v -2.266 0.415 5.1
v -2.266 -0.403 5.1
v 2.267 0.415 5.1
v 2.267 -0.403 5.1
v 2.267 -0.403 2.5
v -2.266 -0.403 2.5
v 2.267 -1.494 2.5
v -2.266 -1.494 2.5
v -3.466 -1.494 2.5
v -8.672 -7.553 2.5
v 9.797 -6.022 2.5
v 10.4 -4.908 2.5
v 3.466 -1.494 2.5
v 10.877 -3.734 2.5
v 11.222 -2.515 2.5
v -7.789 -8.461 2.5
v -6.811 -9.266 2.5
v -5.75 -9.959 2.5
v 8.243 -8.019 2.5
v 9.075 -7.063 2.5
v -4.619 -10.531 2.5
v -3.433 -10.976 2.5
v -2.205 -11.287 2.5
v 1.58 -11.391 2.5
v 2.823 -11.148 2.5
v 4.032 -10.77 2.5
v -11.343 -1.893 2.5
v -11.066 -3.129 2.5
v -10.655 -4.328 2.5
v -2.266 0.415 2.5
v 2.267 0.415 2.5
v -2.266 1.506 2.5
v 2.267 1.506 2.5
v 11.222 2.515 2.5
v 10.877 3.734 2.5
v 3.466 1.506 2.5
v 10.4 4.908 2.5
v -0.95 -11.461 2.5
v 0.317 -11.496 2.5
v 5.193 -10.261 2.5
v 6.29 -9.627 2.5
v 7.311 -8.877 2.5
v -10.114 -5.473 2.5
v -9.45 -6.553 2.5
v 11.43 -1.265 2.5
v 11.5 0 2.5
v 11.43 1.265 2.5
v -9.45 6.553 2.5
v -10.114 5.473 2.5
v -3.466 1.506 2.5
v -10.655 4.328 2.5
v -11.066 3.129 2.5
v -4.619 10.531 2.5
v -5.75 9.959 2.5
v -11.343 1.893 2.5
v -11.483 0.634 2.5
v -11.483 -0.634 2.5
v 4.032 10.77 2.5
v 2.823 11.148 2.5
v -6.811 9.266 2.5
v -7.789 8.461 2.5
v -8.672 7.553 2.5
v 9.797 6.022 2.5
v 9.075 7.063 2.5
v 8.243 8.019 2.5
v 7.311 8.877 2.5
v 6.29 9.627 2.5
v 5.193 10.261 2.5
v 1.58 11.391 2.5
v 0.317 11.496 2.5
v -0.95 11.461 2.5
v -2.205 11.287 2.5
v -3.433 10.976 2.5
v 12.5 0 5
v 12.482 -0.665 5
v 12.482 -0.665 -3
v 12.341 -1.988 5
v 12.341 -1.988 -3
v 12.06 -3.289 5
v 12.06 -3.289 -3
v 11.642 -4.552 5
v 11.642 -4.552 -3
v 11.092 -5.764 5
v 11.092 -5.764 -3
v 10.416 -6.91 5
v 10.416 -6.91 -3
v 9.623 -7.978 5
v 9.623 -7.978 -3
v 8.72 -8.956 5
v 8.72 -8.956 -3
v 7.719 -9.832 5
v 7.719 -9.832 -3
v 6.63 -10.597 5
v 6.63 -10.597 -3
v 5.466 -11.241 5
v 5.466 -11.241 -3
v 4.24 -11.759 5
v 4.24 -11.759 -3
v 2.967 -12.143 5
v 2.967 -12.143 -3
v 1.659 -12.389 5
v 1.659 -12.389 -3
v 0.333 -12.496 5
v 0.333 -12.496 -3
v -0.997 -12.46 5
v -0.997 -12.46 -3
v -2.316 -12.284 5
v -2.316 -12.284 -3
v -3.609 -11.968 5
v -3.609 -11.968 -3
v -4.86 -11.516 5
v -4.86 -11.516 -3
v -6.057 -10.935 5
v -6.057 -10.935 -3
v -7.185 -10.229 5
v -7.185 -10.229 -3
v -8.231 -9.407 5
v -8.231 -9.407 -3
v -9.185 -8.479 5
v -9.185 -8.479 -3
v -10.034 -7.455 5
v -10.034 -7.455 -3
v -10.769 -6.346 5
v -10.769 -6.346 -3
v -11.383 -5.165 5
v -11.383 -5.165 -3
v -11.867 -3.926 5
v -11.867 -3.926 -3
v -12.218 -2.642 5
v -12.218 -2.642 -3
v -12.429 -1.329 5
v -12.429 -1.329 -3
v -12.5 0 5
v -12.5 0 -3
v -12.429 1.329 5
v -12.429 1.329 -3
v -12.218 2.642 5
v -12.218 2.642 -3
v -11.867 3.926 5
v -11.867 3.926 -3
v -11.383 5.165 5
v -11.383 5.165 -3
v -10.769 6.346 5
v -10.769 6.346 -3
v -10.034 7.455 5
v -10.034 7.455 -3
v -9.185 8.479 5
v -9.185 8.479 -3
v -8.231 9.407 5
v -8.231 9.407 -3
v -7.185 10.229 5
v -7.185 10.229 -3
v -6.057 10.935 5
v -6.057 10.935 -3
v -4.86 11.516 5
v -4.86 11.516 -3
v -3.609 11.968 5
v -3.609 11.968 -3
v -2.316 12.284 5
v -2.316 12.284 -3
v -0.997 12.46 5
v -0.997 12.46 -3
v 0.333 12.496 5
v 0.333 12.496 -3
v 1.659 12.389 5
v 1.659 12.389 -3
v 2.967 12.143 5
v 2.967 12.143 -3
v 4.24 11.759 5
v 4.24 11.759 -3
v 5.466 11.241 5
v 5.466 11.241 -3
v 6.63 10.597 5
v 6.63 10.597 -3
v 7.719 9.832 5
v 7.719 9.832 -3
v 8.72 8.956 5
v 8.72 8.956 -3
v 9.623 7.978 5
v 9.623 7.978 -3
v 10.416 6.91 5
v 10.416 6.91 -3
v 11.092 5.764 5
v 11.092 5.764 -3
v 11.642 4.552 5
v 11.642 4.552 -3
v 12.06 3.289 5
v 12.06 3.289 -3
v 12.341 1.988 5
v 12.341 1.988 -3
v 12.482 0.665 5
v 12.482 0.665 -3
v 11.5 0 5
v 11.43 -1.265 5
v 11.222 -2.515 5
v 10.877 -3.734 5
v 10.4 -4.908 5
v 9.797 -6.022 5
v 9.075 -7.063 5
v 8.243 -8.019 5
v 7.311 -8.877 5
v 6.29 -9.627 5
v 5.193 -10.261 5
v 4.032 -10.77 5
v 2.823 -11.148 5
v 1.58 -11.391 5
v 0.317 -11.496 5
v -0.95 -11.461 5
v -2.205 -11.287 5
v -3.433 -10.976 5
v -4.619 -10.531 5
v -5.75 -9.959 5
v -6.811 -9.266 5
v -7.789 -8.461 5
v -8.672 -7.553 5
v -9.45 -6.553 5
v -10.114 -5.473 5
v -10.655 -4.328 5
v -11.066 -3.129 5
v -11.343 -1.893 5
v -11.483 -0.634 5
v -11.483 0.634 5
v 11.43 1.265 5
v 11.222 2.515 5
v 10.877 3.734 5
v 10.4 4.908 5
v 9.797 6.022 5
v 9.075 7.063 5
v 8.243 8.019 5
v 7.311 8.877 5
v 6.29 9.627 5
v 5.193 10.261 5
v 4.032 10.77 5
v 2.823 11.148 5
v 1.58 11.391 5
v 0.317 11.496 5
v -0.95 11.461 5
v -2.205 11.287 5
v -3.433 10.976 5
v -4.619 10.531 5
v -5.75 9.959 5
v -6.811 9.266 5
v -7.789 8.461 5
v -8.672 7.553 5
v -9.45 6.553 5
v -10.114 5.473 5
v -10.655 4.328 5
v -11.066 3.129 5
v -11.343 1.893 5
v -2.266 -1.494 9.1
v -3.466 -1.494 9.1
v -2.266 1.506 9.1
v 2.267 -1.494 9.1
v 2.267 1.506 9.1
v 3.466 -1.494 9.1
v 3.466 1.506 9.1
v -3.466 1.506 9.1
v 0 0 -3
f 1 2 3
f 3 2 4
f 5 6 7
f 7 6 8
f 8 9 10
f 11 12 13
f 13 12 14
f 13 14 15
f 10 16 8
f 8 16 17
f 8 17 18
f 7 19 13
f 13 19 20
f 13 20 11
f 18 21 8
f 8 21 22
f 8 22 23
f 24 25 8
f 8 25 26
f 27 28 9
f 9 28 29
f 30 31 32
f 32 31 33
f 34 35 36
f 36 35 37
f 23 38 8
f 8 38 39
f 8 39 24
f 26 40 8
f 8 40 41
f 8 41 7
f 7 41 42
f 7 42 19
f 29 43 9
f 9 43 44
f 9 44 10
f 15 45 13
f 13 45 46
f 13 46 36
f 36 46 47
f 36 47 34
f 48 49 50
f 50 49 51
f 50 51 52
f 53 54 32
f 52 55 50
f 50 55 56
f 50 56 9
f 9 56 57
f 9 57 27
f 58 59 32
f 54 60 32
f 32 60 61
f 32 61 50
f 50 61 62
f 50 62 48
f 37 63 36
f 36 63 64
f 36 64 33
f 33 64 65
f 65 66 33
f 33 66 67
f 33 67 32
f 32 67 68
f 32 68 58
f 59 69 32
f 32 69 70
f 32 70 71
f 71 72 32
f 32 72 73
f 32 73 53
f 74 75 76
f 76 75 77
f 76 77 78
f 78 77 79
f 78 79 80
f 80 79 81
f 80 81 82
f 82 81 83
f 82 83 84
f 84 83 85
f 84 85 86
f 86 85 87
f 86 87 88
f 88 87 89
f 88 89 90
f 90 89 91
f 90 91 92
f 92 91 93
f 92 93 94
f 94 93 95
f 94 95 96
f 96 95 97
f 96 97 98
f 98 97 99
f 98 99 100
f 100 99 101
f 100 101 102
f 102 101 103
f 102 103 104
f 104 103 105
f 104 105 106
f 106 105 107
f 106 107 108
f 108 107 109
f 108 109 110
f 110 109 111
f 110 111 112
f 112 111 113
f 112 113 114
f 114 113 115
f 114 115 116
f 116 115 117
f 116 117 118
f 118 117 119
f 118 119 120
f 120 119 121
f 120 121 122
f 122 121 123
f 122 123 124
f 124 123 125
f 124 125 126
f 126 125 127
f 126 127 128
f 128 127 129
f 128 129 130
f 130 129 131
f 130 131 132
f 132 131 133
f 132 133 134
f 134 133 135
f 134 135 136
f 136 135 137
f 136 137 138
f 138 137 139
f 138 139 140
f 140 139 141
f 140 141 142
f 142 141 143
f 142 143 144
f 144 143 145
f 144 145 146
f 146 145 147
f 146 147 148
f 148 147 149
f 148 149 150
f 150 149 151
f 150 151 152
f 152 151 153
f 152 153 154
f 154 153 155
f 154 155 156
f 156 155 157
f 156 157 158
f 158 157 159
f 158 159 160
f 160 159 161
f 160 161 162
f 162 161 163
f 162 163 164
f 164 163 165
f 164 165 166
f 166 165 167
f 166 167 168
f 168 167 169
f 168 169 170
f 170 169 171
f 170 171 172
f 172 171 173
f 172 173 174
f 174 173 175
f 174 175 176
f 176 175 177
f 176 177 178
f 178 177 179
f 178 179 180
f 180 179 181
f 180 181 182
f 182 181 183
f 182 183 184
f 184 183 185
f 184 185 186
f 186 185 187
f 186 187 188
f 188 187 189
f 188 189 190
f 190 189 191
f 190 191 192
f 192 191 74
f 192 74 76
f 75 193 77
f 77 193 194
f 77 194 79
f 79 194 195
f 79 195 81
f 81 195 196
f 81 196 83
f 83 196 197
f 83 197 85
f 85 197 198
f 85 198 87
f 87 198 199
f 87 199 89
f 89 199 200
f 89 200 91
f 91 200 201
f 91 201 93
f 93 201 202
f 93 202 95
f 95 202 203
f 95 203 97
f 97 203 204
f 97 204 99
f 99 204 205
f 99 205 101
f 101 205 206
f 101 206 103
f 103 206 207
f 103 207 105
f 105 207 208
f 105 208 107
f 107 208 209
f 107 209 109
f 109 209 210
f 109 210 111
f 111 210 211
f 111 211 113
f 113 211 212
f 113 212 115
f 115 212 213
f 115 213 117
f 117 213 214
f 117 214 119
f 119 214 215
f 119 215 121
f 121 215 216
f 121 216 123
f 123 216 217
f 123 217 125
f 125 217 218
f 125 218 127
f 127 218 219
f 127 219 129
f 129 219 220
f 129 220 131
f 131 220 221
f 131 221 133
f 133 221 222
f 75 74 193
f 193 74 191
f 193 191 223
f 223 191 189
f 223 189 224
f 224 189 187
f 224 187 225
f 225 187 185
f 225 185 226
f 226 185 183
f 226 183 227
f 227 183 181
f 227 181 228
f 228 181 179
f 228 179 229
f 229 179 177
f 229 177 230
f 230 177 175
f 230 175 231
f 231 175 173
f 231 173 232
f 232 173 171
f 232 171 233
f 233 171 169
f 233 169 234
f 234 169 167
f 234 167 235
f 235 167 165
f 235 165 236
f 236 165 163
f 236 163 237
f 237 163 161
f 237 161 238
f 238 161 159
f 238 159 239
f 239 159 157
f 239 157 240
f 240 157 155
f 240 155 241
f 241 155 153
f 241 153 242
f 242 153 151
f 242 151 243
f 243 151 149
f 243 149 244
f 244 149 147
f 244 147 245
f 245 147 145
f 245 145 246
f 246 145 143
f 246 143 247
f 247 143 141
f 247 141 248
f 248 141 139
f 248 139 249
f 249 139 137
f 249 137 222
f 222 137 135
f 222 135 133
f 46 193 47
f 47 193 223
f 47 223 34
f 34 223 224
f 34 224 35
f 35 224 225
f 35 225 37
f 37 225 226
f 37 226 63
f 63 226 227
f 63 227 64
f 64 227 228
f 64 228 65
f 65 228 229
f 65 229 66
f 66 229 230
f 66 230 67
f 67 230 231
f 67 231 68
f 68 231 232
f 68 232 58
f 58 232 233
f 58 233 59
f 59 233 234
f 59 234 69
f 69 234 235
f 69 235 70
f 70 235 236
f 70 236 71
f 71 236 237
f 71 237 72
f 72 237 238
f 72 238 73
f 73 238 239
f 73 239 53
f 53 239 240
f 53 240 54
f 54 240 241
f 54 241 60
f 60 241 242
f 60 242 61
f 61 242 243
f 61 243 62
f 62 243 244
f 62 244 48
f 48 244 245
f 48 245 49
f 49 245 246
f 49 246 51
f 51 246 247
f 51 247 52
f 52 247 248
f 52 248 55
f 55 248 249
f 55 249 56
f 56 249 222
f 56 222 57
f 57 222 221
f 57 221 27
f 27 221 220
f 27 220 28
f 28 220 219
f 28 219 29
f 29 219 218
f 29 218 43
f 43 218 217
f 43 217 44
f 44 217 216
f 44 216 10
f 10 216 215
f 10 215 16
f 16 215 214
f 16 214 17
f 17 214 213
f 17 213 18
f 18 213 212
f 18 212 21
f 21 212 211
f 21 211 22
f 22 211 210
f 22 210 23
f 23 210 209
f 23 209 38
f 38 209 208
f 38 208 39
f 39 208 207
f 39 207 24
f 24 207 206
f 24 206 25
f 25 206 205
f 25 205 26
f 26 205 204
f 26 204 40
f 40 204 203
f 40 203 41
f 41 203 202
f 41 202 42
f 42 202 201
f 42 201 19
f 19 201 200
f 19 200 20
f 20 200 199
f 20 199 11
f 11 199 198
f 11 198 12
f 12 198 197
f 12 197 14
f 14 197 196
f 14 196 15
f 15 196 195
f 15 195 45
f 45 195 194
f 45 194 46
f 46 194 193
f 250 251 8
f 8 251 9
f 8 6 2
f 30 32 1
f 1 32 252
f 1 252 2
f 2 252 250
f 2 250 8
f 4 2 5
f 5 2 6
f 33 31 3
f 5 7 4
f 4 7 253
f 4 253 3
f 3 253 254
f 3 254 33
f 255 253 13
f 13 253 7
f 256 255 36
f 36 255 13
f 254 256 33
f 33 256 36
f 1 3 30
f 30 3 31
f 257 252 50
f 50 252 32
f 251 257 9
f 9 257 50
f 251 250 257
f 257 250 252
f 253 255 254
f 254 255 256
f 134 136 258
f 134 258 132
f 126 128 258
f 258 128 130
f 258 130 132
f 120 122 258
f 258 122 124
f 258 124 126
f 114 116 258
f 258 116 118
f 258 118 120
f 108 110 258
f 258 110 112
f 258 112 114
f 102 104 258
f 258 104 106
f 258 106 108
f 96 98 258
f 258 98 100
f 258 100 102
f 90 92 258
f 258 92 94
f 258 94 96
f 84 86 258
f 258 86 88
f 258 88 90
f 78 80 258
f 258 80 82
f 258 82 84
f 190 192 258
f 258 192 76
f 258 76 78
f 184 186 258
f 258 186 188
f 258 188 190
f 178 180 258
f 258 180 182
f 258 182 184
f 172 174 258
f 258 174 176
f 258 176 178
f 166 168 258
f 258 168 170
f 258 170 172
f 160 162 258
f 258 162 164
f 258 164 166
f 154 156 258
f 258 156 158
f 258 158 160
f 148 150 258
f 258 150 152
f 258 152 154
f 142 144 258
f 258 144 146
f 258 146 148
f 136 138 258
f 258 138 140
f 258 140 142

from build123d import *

# Parameters (mm, degrees)
SKETCH1_R           = 12.5
BOSS_EXTRUDE1_DEPTH = 5
SKETCH2_R           = 11.5
CUT_EXTRUDE1_DEPTH  = 2.5
BOSS_EXTRUDE2_DEPTH = 2.6
SKETCH4_W           = 1.2
SKETCH4_H           = 3
BOSS_EXTRUDE3_DEPTH = 4
BOSS_EXTRUDE4_START = 3
SKETCH5_R           = 12.5
BOSS_EXTRUDE4_DEPTH = 3


with BuildPart() as part:
    # Sketch1 → Boss-Extrude1 (new body)
    with BuildSketch(Plane.XY):
        Circle(SKETCH1_R)
    extrude(amount=BOSS_EXTRUDE1_DEPTH)

    # Sketch2 → Cut-Extrude1 (cut)
    with BuildSketch(Plane.XY.offset(5)):
        Circle(SKETCH2_R)
    extrude(amount=-CUT_EXTRUDE1_DEPTH, mode=Mode.SUBTRACT)

    # Sketch3 → Boss-Extrude2 (add)
    with BuildSketch(Plane.XY.offset(2.5)):
        Polygon((-2.2665, 0.415113025), (2.2665, 0.415113025), (2.2665, 1.506034439), (3.4665, 1.506034439), (3.4665, -1.493965561), (2.2665, -1.493965561), (2.2665, -0.403044147), (-2.2665, -0.403044147), (-2.2665, -1.493965561), (-3.4665, -1.493965561), (-3.4665, 1.506034439), (-2.2665, 1.506034439), align=None)
    extrude(amount=BOSS_EXTRUDE2_DEPTH)

    # Sketch4 → Boss-Extrude3 (add)
    with BuildSketch(Plane.XY.offset(5.1)):
        with Locations((-2.8665, 0.006034439)):
            Rectangle(SKETCH4_W, SKETCH4_H)
        with Locations((2.8665, 0.006034439)):
            Rectangle(SKETCH4_W, SKETCH4_H)
    extrude(amount=BOSS_EXTRUDE3_DEPTH)

    # Sketch5 → Boss-Extrude4 (add)
    with BuildSketch(Plane(origin=(0, 0, 0), x_dir=(-1, 0, 0), z_dir=(0, 0, -1)).offset(BOSS_EXTRUDE4_START)):
        Circle(SKETCH5_R)
    extrude(amount=-BOSS_EXTRUDE4_DEPTH)


solid = part.part
